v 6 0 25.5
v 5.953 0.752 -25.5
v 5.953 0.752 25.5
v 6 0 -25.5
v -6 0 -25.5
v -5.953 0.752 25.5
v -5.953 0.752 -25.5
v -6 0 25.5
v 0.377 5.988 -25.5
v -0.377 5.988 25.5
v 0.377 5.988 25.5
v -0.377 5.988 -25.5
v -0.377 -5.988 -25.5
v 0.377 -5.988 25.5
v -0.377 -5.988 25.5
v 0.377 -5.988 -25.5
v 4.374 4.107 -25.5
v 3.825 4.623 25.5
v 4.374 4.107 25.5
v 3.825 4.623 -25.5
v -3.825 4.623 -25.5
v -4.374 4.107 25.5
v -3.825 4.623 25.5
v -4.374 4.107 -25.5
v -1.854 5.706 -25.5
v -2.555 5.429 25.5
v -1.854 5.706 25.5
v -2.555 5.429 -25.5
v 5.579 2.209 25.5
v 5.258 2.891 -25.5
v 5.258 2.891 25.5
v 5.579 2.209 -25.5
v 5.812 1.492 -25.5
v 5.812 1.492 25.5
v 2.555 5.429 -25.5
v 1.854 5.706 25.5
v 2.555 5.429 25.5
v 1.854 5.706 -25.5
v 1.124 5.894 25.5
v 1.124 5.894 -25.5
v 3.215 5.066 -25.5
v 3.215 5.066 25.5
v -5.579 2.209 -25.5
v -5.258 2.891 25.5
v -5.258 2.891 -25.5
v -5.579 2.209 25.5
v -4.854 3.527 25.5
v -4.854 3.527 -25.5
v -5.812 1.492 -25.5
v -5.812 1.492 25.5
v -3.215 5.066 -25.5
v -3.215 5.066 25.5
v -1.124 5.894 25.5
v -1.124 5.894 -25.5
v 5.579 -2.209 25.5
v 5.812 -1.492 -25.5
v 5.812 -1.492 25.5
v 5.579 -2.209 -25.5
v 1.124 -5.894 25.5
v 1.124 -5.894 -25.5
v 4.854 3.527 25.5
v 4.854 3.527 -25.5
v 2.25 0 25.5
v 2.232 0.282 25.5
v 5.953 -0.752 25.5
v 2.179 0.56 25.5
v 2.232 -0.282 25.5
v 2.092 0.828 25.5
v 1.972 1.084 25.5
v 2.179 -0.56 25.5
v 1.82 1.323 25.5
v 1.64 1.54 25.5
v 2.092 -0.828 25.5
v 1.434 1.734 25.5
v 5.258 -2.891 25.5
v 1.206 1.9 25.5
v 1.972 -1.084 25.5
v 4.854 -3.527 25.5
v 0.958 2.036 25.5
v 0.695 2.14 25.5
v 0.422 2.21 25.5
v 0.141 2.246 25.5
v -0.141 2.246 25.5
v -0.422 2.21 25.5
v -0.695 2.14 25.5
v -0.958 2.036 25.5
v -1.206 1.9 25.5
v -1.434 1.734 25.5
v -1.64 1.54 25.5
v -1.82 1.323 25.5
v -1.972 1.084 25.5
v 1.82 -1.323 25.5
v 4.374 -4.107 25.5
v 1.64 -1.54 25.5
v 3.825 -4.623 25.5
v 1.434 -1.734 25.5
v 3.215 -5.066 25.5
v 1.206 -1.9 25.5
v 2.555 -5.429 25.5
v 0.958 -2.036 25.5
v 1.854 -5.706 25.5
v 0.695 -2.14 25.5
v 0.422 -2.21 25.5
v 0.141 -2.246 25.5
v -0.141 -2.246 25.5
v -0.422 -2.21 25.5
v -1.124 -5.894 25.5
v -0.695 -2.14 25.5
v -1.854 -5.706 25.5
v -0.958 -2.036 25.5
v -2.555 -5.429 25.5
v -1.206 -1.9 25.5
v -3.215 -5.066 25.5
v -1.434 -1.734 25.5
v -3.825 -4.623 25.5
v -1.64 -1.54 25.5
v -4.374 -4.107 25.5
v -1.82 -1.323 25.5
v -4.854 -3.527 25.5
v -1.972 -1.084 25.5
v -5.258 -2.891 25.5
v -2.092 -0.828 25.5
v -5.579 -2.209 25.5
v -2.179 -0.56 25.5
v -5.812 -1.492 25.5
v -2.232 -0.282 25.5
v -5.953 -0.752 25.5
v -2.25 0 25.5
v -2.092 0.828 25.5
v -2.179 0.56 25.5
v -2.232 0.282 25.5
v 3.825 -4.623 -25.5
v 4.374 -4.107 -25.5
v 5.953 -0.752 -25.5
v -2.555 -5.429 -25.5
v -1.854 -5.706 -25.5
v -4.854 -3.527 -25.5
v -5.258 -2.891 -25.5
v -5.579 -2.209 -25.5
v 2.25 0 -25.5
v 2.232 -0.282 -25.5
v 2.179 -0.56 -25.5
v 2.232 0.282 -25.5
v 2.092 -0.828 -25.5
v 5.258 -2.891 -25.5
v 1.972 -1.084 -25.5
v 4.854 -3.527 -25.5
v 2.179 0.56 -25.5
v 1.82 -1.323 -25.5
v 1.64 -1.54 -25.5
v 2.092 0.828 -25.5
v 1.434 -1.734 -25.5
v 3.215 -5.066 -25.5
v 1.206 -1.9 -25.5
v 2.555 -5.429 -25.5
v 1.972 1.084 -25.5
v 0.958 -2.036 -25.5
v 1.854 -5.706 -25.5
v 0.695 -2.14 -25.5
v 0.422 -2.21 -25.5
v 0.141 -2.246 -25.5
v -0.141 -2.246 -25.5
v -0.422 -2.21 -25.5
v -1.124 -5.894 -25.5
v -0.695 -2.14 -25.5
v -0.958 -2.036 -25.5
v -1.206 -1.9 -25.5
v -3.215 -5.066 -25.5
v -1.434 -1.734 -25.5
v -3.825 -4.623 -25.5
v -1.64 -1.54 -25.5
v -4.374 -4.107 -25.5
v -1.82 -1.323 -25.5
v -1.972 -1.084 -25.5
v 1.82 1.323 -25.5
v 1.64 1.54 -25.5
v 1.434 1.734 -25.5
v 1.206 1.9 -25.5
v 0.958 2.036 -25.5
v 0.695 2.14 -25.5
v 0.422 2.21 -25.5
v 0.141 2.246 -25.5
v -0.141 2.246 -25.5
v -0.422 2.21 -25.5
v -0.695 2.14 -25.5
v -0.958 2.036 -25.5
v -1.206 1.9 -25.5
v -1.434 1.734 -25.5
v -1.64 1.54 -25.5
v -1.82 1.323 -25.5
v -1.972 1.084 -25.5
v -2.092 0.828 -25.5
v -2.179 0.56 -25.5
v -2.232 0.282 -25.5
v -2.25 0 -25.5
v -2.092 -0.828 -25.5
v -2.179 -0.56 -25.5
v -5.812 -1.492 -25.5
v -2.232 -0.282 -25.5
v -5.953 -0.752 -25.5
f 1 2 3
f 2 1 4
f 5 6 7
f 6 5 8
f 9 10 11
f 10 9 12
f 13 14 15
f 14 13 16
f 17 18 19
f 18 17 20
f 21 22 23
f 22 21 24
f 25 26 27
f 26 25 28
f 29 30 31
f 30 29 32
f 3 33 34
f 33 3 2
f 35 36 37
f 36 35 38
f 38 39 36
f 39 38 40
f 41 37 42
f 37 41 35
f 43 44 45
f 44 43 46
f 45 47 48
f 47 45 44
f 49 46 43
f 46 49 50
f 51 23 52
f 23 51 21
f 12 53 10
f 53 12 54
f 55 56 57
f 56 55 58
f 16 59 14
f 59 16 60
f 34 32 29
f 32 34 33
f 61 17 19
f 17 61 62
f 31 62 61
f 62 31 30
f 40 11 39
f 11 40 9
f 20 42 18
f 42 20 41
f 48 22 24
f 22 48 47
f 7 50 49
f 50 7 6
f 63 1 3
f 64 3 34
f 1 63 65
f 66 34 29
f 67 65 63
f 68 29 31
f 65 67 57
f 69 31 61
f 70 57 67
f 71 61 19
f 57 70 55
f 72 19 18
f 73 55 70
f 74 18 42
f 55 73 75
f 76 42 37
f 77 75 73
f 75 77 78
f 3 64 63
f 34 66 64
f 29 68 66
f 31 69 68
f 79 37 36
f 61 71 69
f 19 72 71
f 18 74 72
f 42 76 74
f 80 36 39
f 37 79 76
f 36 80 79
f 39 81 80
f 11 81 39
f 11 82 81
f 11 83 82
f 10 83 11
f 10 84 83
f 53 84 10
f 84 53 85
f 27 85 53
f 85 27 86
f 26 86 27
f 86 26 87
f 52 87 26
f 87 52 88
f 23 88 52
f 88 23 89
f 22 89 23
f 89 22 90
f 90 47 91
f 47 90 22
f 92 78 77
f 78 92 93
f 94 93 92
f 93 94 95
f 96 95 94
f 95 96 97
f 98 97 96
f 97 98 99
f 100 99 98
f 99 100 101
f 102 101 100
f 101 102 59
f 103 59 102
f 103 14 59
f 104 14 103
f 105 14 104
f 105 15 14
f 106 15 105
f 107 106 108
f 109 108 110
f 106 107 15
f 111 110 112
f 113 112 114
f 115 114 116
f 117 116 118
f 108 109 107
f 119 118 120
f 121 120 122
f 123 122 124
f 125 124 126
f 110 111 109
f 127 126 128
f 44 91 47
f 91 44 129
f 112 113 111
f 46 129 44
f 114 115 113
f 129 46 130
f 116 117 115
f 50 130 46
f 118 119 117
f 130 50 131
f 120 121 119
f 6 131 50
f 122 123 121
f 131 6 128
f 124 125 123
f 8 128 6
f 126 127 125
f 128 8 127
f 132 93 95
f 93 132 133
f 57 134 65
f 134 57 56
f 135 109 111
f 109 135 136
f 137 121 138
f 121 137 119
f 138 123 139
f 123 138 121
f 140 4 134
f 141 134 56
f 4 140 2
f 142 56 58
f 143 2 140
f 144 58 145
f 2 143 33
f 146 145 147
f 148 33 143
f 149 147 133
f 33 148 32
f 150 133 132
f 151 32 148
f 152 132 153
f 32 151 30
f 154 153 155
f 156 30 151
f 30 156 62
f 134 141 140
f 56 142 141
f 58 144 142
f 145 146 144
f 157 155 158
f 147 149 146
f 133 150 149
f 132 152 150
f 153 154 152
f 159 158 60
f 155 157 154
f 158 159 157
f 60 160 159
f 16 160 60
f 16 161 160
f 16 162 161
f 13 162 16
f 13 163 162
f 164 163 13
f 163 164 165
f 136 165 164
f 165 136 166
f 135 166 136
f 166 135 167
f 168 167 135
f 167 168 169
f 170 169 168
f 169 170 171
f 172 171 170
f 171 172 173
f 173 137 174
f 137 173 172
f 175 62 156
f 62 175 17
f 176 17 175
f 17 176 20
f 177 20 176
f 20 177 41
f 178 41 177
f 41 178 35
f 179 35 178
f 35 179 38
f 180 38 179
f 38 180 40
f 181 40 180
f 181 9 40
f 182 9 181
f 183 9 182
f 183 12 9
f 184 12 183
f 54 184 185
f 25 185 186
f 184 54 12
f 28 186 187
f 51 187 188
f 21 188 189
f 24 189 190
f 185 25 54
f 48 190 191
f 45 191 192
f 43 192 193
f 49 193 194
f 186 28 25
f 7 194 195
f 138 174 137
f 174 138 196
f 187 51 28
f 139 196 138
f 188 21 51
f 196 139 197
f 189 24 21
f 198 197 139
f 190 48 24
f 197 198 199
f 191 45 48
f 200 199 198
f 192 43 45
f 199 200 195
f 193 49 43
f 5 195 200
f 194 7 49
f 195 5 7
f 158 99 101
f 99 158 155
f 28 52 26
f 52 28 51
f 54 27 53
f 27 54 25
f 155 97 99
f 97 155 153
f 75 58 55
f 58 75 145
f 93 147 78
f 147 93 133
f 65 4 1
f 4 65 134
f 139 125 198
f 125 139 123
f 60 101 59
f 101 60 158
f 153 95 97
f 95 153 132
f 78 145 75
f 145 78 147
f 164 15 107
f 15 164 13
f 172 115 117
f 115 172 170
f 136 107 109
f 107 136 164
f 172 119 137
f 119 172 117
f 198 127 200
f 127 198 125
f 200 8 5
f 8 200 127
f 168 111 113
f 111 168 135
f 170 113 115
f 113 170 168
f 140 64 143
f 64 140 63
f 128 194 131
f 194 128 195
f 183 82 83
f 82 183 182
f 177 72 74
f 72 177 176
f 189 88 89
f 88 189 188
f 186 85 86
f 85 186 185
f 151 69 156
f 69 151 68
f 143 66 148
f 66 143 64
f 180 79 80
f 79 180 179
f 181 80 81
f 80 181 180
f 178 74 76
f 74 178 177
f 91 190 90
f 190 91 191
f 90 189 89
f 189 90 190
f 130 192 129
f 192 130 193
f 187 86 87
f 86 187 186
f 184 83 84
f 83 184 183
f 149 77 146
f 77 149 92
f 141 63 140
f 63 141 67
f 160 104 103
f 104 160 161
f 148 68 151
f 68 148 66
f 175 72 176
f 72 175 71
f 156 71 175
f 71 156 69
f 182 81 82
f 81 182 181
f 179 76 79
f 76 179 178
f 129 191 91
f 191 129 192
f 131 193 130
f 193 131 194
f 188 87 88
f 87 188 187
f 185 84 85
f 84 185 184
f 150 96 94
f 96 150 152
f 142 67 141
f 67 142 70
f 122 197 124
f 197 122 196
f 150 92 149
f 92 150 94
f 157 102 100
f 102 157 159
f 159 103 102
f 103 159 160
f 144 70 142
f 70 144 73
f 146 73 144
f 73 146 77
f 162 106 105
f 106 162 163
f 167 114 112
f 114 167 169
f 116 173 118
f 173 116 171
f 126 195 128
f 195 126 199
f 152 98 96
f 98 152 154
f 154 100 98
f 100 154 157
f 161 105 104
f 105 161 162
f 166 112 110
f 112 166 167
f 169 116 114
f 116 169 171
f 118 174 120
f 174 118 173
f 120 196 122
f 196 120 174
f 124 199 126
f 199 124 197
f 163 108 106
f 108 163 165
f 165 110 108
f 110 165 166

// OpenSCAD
$fn = 50;


difference() {
	union() {
		translate(v = [0, 0, -25.5000000000]) {
			cylinder(h = 51, r = 6.0000000000);
		}
	}
	union() {
		translate(v = [0, 0, -100.0000000000]) {
			cylinder(h = 200, r = 2.2500000000);
		}
	}
}
